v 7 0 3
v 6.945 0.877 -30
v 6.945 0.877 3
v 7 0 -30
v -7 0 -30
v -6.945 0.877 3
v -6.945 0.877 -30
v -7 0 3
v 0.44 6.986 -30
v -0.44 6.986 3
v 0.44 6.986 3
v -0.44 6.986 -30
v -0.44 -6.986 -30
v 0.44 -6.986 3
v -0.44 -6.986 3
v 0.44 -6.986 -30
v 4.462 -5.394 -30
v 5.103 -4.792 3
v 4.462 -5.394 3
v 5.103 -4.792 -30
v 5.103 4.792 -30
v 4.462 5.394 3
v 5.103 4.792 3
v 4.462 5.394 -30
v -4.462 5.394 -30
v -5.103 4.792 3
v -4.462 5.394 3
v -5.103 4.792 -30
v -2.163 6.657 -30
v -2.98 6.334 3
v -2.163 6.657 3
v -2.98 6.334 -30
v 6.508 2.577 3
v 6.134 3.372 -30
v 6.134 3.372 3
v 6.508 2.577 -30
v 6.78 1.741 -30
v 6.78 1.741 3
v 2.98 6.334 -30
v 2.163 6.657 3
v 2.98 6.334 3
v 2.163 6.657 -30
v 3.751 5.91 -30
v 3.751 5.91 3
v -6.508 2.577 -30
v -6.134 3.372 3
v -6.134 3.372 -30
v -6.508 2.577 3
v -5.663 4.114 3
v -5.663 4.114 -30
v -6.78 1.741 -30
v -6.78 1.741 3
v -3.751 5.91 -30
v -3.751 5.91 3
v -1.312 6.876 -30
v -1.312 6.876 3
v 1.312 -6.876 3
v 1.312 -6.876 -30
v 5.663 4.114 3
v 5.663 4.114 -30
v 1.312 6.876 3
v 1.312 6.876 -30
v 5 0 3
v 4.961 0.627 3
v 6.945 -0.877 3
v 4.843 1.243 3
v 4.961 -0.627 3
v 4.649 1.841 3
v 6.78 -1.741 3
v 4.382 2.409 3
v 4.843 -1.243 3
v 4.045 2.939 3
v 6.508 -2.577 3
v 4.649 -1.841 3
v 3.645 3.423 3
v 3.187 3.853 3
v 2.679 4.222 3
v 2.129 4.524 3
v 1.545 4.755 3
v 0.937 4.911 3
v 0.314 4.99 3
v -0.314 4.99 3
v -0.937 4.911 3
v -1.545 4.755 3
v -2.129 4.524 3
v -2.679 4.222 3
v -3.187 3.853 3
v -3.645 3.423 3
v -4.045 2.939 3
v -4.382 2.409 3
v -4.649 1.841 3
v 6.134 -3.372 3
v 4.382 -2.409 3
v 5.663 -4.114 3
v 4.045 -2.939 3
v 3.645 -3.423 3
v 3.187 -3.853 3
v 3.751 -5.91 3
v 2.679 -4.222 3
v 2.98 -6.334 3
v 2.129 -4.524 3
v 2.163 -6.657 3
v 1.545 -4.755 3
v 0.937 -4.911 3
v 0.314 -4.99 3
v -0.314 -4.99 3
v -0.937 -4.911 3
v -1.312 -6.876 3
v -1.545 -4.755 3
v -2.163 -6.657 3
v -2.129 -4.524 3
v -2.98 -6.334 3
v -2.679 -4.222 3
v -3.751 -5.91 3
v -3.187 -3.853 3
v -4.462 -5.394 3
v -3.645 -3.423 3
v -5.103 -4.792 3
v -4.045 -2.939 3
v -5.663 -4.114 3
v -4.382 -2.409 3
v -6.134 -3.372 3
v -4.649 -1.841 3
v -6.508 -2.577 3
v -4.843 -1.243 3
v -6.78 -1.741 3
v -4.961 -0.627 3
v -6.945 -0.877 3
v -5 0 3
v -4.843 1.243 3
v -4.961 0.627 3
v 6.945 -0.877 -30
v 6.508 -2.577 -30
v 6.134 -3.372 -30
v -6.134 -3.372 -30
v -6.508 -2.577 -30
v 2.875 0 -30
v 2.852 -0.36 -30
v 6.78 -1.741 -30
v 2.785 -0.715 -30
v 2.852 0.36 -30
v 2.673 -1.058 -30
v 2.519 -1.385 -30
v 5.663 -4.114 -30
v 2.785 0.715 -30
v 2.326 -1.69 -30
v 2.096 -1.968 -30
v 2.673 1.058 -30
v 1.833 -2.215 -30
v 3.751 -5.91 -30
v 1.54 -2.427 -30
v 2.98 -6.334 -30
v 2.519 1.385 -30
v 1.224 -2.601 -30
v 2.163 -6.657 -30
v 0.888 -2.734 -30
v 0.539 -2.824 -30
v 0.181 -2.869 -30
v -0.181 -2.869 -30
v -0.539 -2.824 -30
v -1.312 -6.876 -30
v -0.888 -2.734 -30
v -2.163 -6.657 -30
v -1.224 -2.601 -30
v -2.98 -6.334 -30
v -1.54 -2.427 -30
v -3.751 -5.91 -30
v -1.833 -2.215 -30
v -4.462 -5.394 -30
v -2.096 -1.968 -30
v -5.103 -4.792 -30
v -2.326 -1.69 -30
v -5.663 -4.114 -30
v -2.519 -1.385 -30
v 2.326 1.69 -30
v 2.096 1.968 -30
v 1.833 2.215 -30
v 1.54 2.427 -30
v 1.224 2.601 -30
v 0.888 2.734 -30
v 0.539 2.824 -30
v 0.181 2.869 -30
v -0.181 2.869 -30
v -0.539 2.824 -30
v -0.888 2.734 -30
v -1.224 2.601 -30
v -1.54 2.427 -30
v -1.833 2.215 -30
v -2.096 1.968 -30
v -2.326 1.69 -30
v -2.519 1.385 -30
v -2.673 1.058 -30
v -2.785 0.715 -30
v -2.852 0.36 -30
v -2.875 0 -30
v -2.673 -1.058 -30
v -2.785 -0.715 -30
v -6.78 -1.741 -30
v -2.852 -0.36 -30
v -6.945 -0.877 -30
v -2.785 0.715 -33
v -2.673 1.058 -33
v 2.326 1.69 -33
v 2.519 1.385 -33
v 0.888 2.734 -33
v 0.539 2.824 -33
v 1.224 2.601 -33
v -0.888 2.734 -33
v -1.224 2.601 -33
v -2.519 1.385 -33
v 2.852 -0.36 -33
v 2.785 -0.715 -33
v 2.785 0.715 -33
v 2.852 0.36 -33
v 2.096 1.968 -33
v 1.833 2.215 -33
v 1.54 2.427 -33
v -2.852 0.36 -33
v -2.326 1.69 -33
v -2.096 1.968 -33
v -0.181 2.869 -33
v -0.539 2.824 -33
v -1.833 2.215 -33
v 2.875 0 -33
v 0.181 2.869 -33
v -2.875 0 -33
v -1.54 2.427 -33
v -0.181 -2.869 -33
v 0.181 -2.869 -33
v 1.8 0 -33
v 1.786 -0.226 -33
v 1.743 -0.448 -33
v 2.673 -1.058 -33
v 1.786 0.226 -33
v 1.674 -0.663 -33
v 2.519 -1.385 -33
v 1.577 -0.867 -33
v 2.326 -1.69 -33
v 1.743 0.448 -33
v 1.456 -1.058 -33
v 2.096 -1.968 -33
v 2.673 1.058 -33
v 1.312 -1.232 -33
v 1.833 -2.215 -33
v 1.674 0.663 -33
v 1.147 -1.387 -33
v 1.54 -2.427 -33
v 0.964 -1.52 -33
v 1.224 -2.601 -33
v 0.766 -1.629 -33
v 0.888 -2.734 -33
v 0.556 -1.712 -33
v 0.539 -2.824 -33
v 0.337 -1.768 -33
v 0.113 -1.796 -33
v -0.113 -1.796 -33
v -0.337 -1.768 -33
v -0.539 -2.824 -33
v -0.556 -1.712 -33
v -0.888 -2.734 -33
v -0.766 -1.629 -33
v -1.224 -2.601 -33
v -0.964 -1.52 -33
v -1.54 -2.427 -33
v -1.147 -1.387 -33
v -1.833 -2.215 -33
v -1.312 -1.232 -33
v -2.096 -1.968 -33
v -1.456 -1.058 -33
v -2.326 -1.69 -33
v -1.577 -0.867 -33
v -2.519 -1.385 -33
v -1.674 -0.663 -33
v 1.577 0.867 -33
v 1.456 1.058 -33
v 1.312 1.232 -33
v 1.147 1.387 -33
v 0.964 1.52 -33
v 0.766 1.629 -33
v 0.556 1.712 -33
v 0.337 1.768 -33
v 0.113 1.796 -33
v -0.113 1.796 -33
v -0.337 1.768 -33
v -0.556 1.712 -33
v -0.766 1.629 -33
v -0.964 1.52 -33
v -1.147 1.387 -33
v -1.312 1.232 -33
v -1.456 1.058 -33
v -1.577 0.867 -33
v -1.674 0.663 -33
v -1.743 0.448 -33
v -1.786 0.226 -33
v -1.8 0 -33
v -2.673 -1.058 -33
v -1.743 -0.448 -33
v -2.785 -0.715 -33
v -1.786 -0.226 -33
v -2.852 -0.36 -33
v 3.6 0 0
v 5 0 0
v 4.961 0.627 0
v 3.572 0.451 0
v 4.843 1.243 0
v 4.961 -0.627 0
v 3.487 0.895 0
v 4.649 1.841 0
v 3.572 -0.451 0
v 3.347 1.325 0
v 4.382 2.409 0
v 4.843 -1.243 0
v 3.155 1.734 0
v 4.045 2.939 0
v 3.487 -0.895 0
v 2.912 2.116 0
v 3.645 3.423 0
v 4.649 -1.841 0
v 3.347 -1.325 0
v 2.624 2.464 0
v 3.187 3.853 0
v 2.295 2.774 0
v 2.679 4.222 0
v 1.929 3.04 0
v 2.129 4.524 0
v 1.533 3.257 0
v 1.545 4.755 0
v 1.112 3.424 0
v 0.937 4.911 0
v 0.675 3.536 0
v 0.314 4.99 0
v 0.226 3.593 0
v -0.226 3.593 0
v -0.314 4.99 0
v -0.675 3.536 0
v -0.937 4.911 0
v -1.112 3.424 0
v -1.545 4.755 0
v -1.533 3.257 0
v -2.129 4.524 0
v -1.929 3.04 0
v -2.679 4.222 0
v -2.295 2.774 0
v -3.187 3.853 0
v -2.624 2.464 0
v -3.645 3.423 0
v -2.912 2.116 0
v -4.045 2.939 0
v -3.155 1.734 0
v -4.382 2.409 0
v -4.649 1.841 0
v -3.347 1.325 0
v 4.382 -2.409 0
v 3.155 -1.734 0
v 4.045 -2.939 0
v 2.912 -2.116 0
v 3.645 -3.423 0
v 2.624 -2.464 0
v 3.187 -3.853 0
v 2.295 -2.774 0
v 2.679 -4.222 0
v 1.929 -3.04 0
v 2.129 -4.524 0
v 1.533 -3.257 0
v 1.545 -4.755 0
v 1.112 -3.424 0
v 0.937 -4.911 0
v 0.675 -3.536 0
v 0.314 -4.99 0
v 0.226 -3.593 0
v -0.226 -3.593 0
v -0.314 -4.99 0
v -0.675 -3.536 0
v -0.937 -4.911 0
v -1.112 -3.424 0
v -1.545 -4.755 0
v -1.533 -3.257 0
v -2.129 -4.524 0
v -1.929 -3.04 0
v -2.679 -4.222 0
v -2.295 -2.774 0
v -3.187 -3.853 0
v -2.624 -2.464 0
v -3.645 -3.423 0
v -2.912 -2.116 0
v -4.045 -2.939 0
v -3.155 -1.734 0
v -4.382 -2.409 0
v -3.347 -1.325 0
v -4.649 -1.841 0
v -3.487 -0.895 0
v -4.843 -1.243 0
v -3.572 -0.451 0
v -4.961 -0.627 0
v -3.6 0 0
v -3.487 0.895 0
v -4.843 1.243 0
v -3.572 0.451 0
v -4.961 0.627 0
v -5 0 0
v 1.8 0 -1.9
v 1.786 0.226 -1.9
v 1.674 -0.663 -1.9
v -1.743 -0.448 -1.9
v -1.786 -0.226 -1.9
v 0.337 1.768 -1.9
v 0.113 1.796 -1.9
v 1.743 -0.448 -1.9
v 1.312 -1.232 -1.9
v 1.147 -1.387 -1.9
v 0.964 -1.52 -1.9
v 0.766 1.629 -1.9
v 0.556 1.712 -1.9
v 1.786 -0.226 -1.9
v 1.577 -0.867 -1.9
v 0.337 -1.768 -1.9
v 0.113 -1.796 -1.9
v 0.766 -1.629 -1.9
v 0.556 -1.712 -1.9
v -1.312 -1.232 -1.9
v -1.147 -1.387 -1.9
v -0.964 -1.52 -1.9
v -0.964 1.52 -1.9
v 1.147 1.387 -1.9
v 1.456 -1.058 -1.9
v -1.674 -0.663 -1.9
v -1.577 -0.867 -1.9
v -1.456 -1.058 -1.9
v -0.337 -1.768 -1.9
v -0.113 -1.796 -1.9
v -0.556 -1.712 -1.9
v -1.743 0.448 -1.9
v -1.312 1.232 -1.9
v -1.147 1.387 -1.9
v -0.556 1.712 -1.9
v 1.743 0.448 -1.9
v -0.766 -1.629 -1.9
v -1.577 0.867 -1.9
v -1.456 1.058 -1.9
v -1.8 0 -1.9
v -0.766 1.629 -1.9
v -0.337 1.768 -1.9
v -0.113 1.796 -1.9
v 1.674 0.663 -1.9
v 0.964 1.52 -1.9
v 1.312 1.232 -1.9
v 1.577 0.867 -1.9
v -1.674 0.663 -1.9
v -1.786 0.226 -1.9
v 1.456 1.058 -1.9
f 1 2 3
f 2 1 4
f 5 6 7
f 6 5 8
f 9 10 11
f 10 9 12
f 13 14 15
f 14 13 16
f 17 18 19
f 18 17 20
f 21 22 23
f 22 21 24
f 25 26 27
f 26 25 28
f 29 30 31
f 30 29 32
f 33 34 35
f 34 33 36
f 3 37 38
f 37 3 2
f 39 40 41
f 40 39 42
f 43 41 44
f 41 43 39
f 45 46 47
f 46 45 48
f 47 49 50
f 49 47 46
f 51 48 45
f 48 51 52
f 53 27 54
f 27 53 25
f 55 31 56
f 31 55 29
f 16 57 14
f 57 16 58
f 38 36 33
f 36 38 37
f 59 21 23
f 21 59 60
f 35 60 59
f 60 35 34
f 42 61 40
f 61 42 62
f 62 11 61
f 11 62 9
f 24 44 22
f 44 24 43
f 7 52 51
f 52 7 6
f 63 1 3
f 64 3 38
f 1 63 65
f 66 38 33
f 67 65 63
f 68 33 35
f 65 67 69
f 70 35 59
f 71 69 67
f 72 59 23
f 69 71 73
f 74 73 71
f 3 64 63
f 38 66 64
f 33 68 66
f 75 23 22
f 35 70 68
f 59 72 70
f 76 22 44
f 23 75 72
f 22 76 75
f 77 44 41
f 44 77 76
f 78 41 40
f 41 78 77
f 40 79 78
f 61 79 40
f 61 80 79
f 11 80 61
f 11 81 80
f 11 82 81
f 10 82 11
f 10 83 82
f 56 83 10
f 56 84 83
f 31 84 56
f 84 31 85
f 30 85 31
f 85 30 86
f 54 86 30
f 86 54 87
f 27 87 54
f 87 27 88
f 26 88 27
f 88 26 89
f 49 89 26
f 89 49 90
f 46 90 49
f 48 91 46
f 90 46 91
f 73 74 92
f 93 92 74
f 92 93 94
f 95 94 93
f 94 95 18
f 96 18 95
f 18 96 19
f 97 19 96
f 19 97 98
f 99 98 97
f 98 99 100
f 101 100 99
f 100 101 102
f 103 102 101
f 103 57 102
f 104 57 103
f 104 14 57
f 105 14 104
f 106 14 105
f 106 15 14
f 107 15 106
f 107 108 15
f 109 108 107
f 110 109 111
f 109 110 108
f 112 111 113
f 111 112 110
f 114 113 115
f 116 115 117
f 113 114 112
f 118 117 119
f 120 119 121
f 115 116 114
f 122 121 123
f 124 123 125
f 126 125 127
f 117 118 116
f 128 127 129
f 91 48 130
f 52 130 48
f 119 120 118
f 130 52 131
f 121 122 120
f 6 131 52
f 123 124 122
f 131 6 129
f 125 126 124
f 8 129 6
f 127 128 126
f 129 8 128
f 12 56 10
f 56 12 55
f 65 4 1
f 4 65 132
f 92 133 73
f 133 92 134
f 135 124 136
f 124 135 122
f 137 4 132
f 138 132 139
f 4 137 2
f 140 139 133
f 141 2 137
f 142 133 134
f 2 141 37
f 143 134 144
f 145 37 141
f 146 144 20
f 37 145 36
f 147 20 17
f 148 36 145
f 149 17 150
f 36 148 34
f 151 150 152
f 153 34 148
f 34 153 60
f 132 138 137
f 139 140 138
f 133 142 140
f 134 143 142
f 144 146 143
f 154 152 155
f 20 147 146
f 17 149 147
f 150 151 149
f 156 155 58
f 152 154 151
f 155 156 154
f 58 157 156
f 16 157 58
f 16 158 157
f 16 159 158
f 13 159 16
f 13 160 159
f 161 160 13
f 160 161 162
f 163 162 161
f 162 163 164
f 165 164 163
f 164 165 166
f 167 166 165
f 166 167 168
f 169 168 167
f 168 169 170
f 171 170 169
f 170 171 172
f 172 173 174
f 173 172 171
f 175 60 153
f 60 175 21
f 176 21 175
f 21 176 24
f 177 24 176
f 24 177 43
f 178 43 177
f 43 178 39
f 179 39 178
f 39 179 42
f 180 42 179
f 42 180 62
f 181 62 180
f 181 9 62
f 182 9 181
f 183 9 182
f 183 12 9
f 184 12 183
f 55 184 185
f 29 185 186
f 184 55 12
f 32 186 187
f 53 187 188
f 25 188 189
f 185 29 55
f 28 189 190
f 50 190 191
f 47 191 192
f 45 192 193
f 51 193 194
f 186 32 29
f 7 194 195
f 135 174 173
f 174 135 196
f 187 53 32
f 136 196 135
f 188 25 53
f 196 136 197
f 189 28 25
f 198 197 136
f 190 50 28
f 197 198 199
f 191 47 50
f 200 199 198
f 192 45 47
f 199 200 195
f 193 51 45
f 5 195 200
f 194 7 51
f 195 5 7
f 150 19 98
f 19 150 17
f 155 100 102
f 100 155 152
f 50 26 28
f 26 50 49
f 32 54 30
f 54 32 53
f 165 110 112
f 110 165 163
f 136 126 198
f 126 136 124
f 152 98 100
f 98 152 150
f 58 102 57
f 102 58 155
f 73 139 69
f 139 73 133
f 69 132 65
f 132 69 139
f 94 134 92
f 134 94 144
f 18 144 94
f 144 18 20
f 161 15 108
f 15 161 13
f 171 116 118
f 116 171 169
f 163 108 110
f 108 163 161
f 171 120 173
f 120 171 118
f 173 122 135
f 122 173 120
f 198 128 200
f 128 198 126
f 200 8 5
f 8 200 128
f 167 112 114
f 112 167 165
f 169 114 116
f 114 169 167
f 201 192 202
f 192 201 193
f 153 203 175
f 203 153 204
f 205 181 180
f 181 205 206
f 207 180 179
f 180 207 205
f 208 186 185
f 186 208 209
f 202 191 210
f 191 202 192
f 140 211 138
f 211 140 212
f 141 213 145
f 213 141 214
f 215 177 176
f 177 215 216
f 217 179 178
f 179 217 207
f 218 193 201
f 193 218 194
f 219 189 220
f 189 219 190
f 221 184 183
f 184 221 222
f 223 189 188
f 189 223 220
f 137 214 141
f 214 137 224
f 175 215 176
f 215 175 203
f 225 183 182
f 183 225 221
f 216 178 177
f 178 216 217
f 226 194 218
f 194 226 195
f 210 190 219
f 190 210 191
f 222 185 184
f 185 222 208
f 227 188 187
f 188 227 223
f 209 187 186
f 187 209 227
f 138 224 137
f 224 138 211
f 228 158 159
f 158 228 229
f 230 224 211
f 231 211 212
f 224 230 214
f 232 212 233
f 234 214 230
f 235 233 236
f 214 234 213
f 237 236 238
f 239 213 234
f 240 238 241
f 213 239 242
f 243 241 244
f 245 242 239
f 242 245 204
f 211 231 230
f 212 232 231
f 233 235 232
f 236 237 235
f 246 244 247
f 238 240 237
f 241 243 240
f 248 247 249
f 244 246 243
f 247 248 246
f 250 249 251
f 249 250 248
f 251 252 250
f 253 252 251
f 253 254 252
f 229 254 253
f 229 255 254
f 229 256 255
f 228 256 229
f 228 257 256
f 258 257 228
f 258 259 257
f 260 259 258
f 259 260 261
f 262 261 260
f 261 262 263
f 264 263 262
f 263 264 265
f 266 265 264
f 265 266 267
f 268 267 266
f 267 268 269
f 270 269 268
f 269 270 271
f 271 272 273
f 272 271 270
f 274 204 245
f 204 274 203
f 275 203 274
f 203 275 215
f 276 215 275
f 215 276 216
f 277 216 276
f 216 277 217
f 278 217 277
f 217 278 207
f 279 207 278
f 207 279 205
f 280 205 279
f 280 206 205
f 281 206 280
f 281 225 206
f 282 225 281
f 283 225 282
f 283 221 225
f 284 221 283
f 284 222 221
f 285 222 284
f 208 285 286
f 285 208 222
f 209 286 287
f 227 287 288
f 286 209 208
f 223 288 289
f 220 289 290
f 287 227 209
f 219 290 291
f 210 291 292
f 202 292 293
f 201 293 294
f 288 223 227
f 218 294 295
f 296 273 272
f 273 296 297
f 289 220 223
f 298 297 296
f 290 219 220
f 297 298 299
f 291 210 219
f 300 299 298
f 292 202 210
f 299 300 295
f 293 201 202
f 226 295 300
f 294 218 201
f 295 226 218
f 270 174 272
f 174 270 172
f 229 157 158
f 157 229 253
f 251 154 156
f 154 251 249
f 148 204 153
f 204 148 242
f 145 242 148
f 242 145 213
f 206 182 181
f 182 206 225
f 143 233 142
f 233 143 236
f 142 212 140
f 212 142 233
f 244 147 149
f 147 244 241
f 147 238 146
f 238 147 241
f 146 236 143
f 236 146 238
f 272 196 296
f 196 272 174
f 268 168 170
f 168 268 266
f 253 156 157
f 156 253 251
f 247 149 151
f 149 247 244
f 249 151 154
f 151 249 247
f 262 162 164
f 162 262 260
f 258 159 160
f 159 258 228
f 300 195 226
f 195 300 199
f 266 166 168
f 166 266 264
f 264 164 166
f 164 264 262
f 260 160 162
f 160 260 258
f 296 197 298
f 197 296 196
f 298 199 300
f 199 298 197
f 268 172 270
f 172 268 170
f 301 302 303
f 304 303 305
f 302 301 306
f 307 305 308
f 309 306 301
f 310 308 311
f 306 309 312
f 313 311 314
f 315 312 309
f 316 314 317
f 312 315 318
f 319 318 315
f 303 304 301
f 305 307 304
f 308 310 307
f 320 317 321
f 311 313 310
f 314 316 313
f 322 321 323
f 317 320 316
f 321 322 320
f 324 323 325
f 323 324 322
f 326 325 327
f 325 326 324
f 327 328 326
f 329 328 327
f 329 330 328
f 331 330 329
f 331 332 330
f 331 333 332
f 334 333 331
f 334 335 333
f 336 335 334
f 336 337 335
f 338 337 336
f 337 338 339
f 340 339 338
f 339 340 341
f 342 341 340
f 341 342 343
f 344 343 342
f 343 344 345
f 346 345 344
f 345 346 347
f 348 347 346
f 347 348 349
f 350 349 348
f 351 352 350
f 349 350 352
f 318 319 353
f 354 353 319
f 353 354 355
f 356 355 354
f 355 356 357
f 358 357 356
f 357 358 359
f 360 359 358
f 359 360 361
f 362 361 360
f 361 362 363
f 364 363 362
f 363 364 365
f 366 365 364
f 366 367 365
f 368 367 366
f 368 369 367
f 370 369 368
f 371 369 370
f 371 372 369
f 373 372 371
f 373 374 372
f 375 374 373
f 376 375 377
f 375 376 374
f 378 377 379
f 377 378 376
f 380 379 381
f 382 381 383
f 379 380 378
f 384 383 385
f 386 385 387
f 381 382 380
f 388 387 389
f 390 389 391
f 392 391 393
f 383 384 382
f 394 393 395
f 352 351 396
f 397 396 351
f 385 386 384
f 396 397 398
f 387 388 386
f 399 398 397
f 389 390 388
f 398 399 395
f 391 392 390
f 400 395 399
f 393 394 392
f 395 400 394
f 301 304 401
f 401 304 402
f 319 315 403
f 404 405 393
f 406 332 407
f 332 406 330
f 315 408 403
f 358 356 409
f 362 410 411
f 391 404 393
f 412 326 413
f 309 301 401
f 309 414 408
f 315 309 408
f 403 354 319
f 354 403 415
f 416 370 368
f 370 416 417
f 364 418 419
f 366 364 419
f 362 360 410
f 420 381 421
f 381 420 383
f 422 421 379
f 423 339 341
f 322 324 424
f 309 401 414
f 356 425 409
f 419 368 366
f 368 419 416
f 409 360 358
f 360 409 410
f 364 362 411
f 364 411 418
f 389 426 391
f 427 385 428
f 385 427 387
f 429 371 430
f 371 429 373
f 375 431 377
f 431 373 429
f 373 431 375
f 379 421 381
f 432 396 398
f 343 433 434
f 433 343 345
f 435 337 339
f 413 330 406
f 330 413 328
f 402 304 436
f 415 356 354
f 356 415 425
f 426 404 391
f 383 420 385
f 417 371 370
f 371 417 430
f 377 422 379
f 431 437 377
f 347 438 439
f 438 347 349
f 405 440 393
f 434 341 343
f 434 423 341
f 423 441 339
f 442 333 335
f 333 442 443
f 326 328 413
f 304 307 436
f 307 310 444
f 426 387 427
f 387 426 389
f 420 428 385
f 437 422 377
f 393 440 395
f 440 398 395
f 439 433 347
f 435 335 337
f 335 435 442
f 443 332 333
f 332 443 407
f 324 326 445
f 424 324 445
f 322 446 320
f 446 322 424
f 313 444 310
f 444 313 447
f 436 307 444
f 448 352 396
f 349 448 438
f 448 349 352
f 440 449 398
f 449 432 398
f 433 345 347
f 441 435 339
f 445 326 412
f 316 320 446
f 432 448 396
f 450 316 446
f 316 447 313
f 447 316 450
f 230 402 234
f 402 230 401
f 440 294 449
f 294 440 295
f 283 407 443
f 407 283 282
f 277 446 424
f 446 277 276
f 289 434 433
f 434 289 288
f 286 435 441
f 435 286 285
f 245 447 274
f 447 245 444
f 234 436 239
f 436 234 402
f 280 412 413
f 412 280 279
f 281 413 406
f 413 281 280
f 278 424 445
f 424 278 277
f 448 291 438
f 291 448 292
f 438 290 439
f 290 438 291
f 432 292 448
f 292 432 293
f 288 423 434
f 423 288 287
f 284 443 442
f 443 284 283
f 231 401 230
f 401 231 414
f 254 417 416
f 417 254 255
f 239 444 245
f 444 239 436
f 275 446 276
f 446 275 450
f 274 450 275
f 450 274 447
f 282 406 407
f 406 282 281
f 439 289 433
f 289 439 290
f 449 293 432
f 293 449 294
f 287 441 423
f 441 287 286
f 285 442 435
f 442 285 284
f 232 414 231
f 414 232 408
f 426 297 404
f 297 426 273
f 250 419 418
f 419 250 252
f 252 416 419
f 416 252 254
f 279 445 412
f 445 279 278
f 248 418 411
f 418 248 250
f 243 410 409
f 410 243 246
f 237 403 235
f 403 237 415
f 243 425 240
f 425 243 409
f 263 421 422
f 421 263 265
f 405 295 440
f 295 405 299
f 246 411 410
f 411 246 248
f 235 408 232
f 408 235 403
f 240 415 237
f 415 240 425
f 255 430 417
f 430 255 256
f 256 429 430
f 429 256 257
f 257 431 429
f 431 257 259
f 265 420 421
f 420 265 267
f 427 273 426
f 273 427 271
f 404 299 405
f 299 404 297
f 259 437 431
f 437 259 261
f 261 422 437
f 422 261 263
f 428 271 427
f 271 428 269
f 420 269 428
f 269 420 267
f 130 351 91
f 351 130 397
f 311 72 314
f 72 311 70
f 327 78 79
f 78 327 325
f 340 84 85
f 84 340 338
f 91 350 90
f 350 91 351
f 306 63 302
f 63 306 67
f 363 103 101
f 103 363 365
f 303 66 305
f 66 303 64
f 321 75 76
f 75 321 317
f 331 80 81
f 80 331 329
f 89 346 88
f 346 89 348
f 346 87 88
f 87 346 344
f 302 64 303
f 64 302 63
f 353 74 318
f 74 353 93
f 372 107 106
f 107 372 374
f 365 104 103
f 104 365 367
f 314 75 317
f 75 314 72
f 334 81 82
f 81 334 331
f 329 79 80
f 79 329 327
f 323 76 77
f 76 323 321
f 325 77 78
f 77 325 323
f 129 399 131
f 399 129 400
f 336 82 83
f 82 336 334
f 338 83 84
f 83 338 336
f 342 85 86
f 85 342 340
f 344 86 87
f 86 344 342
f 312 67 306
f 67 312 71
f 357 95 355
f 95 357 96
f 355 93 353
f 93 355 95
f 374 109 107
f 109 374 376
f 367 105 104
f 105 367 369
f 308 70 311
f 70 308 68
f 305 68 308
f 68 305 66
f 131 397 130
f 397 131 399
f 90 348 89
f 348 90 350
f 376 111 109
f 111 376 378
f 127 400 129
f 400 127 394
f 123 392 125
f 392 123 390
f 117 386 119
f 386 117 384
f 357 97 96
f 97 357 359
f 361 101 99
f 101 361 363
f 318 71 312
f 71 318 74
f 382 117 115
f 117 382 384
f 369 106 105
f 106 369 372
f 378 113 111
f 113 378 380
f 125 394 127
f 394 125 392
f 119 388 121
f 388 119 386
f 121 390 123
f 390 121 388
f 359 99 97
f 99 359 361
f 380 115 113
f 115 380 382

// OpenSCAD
$fn = 50;


difference() {
	union() {
		translate(v = [0, 0, -30.0000000000]) {
			cylinder(h = 33, r = 7.0000000000);
		}
		#translate(v = [0, 0, -33.0000000000]) {
			cylinder(h = 33, r = 2.8750000000);
		}
	}
	union() {
		translate(v = [0, 0, 0]) {
			rotate(a = [0, 0, 0]) {
				difference() {
					union() {
						translate(v = [0, 0, -33.0000000000]) {
							cylinder(h = 33, r = 1.5000000000);
						}
						translate(v = [0, 0, -1.9000000000]) {
							cylinder(h = 1.9000000000, r1 = 1.8000000000, r2 = 3.6000000000);
						}
						translate(v = [0, 0, -33.0000000000]) {
							cylinder(h = 33, r = 1.8000000000);
						}
						translate(v = [0, 0, -33.0000000000]) {
							cylinder(h = 33, r = 1.5000000000);
						}
					}
					union();
				}
			}
		}
		#cylinder(h = 3, r = 5.0000000000);
	}
}
